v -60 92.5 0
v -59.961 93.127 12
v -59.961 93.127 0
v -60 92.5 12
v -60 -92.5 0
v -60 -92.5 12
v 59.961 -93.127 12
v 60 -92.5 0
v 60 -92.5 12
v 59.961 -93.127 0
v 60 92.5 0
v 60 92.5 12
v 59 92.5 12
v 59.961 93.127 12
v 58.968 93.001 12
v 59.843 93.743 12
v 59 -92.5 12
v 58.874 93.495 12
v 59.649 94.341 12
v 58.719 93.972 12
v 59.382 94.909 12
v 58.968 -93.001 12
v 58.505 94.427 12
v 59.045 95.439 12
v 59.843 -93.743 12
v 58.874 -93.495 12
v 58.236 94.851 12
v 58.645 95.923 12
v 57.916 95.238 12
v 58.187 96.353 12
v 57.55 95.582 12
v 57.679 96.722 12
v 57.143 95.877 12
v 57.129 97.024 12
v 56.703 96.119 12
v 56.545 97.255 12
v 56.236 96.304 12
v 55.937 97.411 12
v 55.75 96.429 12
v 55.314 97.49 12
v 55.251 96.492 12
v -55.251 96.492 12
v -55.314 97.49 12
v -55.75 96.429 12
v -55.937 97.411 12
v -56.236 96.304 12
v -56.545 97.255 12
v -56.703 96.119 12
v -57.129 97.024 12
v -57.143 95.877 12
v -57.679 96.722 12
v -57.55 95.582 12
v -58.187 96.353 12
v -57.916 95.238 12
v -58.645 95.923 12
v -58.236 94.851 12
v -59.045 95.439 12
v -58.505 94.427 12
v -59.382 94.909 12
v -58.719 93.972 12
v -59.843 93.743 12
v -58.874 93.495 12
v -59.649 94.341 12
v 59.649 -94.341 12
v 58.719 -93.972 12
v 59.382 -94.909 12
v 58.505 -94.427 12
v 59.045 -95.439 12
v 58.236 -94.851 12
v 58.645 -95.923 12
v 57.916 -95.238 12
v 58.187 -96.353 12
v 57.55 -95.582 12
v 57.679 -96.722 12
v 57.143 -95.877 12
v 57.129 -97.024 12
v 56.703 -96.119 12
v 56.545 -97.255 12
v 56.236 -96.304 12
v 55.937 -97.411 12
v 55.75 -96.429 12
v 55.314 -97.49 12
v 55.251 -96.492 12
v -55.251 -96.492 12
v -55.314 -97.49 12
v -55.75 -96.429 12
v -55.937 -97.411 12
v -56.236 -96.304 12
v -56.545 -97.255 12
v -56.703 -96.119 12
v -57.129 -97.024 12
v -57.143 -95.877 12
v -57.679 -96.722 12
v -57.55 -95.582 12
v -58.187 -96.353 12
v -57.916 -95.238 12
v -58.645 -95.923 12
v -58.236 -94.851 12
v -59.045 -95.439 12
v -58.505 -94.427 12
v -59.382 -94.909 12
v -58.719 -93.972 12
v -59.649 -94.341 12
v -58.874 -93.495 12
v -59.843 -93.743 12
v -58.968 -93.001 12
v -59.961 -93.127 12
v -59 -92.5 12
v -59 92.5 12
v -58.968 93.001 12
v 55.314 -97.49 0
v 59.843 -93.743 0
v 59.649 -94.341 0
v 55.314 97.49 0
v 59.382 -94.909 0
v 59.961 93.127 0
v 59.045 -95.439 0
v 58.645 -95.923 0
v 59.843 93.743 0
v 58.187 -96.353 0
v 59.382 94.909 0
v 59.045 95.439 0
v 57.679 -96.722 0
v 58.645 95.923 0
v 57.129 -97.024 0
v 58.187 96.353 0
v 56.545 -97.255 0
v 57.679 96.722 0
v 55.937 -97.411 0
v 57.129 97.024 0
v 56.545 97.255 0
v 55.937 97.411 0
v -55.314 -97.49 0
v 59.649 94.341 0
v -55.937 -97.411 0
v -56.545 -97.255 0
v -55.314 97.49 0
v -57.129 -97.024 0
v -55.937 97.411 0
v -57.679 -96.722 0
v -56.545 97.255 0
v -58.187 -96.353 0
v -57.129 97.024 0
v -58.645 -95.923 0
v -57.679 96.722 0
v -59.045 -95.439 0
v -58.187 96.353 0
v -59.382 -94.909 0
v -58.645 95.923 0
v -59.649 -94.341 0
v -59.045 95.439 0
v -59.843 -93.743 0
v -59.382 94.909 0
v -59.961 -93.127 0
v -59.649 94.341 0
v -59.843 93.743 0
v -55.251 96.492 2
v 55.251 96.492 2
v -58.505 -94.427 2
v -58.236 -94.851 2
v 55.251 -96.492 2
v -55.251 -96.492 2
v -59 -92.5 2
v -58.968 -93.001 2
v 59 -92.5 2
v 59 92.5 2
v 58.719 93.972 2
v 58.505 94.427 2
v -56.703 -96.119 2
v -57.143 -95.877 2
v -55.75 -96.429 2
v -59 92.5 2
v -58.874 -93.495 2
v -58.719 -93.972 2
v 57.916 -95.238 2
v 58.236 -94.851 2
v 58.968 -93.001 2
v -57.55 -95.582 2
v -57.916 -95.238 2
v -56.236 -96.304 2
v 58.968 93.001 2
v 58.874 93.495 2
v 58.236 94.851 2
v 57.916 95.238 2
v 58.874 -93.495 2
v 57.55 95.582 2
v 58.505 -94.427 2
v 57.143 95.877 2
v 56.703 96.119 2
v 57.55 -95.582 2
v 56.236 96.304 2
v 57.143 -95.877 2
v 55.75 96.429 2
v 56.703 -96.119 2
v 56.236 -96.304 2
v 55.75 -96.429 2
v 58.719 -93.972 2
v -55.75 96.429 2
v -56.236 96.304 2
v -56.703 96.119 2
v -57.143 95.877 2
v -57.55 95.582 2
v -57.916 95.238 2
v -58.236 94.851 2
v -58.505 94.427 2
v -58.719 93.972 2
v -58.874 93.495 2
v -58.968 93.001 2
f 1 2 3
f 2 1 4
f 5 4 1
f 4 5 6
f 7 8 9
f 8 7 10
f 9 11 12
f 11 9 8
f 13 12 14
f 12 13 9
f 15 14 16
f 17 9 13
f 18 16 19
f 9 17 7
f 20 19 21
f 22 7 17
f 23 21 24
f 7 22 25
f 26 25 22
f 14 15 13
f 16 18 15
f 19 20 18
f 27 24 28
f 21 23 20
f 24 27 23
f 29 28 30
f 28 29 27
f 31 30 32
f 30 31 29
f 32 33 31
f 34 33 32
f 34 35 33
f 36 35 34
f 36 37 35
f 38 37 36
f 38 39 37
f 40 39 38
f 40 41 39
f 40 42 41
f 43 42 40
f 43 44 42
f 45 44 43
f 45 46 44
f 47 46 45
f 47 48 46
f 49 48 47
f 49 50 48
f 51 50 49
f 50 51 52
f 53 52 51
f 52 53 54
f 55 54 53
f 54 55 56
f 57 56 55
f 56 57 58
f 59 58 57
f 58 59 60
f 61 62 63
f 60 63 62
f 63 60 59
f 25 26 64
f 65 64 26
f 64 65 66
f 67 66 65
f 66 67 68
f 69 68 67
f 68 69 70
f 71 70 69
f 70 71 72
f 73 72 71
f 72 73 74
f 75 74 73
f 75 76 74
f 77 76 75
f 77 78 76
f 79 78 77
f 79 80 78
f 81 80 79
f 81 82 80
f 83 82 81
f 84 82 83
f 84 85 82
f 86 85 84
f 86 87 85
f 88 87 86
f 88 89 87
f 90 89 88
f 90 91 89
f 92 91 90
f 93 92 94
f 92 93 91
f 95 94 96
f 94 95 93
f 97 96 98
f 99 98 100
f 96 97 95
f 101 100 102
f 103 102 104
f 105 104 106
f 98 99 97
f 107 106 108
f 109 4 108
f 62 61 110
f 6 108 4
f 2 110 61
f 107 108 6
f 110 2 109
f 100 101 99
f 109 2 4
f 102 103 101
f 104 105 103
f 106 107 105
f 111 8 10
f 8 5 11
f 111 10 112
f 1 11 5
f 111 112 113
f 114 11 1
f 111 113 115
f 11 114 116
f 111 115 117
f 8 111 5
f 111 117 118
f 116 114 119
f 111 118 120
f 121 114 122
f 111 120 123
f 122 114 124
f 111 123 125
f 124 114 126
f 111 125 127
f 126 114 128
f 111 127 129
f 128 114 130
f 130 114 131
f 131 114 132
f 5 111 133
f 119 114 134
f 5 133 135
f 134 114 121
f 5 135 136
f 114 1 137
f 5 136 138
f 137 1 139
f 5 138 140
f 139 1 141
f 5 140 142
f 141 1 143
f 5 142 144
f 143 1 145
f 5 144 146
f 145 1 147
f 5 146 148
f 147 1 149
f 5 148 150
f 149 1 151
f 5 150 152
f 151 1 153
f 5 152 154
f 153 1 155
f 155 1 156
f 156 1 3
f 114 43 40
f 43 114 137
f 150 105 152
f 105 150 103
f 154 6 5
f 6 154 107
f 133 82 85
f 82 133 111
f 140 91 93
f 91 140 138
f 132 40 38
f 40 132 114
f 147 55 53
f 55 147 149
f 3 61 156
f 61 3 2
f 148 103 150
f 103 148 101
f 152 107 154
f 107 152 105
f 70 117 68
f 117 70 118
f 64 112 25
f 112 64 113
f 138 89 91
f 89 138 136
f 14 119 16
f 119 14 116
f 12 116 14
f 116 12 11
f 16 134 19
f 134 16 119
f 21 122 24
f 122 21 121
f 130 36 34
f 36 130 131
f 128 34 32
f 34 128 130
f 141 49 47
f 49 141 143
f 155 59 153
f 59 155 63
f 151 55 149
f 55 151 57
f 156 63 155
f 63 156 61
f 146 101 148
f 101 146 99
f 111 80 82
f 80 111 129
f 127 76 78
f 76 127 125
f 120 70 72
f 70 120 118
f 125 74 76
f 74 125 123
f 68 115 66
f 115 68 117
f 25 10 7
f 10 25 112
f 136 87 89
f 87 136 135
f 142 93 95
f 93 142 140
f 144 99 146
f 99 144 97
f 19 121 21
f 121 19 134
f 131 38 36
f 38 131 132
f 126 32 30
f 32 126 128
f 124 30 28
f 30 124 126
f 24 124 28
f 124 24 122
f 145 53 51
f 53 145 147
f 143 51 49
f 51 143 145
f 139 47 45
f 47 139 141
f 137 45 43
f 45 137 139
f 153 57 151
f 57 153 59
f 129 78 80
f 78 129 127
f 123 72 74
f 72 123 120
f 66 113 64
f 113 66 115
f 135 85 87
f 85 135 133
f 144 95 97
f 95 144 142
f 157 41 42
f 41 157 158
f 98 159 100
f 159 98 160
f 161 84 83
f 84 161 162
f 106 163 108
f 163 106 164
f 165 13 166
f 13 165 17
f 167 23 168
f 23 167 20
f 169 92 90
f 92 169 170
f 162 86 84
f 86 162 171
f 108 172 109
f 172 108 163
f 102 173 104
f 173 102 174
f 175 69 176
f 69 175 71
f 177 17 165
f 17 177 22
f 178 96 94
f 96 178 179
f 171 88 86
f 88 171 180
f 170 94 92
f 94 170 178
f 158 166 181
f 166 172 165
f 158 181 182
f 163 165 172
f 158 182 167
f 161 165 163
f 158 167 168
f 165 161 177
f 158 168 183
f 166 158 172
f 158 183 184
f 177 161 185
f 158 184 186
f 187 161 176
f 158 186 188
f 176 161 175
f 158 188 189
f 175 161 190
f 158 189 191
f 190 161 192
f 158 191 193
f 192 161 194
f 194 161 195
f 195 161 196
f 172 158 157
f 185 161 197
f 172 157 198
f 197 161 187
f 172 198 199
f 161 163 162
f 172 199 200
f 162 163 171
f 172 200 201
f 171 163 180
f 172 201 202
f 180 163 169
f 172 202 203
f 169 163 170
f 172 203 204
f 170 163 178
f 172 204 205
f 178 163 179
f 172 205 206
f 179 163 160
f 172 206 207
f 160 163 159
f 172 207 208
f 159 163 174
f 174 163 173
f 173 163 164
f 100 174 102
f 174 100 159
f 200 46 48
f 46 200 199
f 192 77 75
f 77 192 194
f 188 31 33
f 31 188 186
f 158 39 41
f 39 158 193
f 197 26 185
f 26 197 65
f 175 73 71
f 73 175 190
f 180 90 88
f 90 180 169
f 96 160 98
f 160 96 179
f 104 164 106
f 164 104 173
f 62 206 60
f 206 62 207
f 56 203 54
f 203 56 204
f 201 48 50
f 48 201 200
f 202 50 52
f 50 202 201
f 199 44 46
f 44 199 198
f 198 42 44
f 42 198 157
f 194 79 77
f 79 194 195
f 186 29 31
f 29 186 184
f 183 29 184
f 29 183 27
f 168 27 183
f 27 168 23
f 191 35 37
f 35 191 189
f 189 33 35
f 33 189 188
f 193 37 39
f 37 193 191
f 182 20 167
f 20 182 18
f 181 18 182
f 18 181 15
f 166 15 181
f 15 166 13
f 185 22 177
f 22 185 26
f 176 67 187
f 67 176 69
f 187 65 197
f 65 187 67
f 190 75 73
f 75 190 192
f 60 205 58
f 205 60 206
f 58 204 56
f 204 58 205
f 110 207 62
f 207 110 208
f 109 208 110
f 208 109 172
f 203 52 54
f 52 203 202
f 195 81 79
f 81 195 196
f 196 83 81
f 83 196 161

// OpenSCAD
$fn = 50;


difference() {
	union() {
		hull() {
			translate(v = [-55.0000000000, 92.5000000000, 0]) {
				cylinder(h = 12, r = 5);
			}
			translate(v = [55.0000000000, 92.5000000000, 0]) {
				cylinder(h = 12, r = 5);
			}
			translate(v = [-55.0000000000, -92.5000000000, 0]) {
				cylinder(h = 12, r = 5);
			}
			translate(v = [55.0000000000, -92.5000000000, 0]) {
				cylinder(h = 12, r = 5);
			}
		}
	}
	union() {
		translate(v = [0, 0, 2]) {
			hull() {
				translate(v = [-55.0000000000, 92.5000000000, 0]) {
					cylinder(h = 10, r = 4);
				}
				translate(v = [55.0000000000, 92.5000000000, 0]) {
					cylinder(h = 10, r = 4);
				}
				translate(v = [-55.0000000000, -92.5000000000, 0]) {
					cylinder(h = 10, r = 4);
				}
				translate(v = [55.0000000000, -92.5000000000, 0]) {
					cylinder(h = 10, r = 4);
				}
			}
		}
	}
}
